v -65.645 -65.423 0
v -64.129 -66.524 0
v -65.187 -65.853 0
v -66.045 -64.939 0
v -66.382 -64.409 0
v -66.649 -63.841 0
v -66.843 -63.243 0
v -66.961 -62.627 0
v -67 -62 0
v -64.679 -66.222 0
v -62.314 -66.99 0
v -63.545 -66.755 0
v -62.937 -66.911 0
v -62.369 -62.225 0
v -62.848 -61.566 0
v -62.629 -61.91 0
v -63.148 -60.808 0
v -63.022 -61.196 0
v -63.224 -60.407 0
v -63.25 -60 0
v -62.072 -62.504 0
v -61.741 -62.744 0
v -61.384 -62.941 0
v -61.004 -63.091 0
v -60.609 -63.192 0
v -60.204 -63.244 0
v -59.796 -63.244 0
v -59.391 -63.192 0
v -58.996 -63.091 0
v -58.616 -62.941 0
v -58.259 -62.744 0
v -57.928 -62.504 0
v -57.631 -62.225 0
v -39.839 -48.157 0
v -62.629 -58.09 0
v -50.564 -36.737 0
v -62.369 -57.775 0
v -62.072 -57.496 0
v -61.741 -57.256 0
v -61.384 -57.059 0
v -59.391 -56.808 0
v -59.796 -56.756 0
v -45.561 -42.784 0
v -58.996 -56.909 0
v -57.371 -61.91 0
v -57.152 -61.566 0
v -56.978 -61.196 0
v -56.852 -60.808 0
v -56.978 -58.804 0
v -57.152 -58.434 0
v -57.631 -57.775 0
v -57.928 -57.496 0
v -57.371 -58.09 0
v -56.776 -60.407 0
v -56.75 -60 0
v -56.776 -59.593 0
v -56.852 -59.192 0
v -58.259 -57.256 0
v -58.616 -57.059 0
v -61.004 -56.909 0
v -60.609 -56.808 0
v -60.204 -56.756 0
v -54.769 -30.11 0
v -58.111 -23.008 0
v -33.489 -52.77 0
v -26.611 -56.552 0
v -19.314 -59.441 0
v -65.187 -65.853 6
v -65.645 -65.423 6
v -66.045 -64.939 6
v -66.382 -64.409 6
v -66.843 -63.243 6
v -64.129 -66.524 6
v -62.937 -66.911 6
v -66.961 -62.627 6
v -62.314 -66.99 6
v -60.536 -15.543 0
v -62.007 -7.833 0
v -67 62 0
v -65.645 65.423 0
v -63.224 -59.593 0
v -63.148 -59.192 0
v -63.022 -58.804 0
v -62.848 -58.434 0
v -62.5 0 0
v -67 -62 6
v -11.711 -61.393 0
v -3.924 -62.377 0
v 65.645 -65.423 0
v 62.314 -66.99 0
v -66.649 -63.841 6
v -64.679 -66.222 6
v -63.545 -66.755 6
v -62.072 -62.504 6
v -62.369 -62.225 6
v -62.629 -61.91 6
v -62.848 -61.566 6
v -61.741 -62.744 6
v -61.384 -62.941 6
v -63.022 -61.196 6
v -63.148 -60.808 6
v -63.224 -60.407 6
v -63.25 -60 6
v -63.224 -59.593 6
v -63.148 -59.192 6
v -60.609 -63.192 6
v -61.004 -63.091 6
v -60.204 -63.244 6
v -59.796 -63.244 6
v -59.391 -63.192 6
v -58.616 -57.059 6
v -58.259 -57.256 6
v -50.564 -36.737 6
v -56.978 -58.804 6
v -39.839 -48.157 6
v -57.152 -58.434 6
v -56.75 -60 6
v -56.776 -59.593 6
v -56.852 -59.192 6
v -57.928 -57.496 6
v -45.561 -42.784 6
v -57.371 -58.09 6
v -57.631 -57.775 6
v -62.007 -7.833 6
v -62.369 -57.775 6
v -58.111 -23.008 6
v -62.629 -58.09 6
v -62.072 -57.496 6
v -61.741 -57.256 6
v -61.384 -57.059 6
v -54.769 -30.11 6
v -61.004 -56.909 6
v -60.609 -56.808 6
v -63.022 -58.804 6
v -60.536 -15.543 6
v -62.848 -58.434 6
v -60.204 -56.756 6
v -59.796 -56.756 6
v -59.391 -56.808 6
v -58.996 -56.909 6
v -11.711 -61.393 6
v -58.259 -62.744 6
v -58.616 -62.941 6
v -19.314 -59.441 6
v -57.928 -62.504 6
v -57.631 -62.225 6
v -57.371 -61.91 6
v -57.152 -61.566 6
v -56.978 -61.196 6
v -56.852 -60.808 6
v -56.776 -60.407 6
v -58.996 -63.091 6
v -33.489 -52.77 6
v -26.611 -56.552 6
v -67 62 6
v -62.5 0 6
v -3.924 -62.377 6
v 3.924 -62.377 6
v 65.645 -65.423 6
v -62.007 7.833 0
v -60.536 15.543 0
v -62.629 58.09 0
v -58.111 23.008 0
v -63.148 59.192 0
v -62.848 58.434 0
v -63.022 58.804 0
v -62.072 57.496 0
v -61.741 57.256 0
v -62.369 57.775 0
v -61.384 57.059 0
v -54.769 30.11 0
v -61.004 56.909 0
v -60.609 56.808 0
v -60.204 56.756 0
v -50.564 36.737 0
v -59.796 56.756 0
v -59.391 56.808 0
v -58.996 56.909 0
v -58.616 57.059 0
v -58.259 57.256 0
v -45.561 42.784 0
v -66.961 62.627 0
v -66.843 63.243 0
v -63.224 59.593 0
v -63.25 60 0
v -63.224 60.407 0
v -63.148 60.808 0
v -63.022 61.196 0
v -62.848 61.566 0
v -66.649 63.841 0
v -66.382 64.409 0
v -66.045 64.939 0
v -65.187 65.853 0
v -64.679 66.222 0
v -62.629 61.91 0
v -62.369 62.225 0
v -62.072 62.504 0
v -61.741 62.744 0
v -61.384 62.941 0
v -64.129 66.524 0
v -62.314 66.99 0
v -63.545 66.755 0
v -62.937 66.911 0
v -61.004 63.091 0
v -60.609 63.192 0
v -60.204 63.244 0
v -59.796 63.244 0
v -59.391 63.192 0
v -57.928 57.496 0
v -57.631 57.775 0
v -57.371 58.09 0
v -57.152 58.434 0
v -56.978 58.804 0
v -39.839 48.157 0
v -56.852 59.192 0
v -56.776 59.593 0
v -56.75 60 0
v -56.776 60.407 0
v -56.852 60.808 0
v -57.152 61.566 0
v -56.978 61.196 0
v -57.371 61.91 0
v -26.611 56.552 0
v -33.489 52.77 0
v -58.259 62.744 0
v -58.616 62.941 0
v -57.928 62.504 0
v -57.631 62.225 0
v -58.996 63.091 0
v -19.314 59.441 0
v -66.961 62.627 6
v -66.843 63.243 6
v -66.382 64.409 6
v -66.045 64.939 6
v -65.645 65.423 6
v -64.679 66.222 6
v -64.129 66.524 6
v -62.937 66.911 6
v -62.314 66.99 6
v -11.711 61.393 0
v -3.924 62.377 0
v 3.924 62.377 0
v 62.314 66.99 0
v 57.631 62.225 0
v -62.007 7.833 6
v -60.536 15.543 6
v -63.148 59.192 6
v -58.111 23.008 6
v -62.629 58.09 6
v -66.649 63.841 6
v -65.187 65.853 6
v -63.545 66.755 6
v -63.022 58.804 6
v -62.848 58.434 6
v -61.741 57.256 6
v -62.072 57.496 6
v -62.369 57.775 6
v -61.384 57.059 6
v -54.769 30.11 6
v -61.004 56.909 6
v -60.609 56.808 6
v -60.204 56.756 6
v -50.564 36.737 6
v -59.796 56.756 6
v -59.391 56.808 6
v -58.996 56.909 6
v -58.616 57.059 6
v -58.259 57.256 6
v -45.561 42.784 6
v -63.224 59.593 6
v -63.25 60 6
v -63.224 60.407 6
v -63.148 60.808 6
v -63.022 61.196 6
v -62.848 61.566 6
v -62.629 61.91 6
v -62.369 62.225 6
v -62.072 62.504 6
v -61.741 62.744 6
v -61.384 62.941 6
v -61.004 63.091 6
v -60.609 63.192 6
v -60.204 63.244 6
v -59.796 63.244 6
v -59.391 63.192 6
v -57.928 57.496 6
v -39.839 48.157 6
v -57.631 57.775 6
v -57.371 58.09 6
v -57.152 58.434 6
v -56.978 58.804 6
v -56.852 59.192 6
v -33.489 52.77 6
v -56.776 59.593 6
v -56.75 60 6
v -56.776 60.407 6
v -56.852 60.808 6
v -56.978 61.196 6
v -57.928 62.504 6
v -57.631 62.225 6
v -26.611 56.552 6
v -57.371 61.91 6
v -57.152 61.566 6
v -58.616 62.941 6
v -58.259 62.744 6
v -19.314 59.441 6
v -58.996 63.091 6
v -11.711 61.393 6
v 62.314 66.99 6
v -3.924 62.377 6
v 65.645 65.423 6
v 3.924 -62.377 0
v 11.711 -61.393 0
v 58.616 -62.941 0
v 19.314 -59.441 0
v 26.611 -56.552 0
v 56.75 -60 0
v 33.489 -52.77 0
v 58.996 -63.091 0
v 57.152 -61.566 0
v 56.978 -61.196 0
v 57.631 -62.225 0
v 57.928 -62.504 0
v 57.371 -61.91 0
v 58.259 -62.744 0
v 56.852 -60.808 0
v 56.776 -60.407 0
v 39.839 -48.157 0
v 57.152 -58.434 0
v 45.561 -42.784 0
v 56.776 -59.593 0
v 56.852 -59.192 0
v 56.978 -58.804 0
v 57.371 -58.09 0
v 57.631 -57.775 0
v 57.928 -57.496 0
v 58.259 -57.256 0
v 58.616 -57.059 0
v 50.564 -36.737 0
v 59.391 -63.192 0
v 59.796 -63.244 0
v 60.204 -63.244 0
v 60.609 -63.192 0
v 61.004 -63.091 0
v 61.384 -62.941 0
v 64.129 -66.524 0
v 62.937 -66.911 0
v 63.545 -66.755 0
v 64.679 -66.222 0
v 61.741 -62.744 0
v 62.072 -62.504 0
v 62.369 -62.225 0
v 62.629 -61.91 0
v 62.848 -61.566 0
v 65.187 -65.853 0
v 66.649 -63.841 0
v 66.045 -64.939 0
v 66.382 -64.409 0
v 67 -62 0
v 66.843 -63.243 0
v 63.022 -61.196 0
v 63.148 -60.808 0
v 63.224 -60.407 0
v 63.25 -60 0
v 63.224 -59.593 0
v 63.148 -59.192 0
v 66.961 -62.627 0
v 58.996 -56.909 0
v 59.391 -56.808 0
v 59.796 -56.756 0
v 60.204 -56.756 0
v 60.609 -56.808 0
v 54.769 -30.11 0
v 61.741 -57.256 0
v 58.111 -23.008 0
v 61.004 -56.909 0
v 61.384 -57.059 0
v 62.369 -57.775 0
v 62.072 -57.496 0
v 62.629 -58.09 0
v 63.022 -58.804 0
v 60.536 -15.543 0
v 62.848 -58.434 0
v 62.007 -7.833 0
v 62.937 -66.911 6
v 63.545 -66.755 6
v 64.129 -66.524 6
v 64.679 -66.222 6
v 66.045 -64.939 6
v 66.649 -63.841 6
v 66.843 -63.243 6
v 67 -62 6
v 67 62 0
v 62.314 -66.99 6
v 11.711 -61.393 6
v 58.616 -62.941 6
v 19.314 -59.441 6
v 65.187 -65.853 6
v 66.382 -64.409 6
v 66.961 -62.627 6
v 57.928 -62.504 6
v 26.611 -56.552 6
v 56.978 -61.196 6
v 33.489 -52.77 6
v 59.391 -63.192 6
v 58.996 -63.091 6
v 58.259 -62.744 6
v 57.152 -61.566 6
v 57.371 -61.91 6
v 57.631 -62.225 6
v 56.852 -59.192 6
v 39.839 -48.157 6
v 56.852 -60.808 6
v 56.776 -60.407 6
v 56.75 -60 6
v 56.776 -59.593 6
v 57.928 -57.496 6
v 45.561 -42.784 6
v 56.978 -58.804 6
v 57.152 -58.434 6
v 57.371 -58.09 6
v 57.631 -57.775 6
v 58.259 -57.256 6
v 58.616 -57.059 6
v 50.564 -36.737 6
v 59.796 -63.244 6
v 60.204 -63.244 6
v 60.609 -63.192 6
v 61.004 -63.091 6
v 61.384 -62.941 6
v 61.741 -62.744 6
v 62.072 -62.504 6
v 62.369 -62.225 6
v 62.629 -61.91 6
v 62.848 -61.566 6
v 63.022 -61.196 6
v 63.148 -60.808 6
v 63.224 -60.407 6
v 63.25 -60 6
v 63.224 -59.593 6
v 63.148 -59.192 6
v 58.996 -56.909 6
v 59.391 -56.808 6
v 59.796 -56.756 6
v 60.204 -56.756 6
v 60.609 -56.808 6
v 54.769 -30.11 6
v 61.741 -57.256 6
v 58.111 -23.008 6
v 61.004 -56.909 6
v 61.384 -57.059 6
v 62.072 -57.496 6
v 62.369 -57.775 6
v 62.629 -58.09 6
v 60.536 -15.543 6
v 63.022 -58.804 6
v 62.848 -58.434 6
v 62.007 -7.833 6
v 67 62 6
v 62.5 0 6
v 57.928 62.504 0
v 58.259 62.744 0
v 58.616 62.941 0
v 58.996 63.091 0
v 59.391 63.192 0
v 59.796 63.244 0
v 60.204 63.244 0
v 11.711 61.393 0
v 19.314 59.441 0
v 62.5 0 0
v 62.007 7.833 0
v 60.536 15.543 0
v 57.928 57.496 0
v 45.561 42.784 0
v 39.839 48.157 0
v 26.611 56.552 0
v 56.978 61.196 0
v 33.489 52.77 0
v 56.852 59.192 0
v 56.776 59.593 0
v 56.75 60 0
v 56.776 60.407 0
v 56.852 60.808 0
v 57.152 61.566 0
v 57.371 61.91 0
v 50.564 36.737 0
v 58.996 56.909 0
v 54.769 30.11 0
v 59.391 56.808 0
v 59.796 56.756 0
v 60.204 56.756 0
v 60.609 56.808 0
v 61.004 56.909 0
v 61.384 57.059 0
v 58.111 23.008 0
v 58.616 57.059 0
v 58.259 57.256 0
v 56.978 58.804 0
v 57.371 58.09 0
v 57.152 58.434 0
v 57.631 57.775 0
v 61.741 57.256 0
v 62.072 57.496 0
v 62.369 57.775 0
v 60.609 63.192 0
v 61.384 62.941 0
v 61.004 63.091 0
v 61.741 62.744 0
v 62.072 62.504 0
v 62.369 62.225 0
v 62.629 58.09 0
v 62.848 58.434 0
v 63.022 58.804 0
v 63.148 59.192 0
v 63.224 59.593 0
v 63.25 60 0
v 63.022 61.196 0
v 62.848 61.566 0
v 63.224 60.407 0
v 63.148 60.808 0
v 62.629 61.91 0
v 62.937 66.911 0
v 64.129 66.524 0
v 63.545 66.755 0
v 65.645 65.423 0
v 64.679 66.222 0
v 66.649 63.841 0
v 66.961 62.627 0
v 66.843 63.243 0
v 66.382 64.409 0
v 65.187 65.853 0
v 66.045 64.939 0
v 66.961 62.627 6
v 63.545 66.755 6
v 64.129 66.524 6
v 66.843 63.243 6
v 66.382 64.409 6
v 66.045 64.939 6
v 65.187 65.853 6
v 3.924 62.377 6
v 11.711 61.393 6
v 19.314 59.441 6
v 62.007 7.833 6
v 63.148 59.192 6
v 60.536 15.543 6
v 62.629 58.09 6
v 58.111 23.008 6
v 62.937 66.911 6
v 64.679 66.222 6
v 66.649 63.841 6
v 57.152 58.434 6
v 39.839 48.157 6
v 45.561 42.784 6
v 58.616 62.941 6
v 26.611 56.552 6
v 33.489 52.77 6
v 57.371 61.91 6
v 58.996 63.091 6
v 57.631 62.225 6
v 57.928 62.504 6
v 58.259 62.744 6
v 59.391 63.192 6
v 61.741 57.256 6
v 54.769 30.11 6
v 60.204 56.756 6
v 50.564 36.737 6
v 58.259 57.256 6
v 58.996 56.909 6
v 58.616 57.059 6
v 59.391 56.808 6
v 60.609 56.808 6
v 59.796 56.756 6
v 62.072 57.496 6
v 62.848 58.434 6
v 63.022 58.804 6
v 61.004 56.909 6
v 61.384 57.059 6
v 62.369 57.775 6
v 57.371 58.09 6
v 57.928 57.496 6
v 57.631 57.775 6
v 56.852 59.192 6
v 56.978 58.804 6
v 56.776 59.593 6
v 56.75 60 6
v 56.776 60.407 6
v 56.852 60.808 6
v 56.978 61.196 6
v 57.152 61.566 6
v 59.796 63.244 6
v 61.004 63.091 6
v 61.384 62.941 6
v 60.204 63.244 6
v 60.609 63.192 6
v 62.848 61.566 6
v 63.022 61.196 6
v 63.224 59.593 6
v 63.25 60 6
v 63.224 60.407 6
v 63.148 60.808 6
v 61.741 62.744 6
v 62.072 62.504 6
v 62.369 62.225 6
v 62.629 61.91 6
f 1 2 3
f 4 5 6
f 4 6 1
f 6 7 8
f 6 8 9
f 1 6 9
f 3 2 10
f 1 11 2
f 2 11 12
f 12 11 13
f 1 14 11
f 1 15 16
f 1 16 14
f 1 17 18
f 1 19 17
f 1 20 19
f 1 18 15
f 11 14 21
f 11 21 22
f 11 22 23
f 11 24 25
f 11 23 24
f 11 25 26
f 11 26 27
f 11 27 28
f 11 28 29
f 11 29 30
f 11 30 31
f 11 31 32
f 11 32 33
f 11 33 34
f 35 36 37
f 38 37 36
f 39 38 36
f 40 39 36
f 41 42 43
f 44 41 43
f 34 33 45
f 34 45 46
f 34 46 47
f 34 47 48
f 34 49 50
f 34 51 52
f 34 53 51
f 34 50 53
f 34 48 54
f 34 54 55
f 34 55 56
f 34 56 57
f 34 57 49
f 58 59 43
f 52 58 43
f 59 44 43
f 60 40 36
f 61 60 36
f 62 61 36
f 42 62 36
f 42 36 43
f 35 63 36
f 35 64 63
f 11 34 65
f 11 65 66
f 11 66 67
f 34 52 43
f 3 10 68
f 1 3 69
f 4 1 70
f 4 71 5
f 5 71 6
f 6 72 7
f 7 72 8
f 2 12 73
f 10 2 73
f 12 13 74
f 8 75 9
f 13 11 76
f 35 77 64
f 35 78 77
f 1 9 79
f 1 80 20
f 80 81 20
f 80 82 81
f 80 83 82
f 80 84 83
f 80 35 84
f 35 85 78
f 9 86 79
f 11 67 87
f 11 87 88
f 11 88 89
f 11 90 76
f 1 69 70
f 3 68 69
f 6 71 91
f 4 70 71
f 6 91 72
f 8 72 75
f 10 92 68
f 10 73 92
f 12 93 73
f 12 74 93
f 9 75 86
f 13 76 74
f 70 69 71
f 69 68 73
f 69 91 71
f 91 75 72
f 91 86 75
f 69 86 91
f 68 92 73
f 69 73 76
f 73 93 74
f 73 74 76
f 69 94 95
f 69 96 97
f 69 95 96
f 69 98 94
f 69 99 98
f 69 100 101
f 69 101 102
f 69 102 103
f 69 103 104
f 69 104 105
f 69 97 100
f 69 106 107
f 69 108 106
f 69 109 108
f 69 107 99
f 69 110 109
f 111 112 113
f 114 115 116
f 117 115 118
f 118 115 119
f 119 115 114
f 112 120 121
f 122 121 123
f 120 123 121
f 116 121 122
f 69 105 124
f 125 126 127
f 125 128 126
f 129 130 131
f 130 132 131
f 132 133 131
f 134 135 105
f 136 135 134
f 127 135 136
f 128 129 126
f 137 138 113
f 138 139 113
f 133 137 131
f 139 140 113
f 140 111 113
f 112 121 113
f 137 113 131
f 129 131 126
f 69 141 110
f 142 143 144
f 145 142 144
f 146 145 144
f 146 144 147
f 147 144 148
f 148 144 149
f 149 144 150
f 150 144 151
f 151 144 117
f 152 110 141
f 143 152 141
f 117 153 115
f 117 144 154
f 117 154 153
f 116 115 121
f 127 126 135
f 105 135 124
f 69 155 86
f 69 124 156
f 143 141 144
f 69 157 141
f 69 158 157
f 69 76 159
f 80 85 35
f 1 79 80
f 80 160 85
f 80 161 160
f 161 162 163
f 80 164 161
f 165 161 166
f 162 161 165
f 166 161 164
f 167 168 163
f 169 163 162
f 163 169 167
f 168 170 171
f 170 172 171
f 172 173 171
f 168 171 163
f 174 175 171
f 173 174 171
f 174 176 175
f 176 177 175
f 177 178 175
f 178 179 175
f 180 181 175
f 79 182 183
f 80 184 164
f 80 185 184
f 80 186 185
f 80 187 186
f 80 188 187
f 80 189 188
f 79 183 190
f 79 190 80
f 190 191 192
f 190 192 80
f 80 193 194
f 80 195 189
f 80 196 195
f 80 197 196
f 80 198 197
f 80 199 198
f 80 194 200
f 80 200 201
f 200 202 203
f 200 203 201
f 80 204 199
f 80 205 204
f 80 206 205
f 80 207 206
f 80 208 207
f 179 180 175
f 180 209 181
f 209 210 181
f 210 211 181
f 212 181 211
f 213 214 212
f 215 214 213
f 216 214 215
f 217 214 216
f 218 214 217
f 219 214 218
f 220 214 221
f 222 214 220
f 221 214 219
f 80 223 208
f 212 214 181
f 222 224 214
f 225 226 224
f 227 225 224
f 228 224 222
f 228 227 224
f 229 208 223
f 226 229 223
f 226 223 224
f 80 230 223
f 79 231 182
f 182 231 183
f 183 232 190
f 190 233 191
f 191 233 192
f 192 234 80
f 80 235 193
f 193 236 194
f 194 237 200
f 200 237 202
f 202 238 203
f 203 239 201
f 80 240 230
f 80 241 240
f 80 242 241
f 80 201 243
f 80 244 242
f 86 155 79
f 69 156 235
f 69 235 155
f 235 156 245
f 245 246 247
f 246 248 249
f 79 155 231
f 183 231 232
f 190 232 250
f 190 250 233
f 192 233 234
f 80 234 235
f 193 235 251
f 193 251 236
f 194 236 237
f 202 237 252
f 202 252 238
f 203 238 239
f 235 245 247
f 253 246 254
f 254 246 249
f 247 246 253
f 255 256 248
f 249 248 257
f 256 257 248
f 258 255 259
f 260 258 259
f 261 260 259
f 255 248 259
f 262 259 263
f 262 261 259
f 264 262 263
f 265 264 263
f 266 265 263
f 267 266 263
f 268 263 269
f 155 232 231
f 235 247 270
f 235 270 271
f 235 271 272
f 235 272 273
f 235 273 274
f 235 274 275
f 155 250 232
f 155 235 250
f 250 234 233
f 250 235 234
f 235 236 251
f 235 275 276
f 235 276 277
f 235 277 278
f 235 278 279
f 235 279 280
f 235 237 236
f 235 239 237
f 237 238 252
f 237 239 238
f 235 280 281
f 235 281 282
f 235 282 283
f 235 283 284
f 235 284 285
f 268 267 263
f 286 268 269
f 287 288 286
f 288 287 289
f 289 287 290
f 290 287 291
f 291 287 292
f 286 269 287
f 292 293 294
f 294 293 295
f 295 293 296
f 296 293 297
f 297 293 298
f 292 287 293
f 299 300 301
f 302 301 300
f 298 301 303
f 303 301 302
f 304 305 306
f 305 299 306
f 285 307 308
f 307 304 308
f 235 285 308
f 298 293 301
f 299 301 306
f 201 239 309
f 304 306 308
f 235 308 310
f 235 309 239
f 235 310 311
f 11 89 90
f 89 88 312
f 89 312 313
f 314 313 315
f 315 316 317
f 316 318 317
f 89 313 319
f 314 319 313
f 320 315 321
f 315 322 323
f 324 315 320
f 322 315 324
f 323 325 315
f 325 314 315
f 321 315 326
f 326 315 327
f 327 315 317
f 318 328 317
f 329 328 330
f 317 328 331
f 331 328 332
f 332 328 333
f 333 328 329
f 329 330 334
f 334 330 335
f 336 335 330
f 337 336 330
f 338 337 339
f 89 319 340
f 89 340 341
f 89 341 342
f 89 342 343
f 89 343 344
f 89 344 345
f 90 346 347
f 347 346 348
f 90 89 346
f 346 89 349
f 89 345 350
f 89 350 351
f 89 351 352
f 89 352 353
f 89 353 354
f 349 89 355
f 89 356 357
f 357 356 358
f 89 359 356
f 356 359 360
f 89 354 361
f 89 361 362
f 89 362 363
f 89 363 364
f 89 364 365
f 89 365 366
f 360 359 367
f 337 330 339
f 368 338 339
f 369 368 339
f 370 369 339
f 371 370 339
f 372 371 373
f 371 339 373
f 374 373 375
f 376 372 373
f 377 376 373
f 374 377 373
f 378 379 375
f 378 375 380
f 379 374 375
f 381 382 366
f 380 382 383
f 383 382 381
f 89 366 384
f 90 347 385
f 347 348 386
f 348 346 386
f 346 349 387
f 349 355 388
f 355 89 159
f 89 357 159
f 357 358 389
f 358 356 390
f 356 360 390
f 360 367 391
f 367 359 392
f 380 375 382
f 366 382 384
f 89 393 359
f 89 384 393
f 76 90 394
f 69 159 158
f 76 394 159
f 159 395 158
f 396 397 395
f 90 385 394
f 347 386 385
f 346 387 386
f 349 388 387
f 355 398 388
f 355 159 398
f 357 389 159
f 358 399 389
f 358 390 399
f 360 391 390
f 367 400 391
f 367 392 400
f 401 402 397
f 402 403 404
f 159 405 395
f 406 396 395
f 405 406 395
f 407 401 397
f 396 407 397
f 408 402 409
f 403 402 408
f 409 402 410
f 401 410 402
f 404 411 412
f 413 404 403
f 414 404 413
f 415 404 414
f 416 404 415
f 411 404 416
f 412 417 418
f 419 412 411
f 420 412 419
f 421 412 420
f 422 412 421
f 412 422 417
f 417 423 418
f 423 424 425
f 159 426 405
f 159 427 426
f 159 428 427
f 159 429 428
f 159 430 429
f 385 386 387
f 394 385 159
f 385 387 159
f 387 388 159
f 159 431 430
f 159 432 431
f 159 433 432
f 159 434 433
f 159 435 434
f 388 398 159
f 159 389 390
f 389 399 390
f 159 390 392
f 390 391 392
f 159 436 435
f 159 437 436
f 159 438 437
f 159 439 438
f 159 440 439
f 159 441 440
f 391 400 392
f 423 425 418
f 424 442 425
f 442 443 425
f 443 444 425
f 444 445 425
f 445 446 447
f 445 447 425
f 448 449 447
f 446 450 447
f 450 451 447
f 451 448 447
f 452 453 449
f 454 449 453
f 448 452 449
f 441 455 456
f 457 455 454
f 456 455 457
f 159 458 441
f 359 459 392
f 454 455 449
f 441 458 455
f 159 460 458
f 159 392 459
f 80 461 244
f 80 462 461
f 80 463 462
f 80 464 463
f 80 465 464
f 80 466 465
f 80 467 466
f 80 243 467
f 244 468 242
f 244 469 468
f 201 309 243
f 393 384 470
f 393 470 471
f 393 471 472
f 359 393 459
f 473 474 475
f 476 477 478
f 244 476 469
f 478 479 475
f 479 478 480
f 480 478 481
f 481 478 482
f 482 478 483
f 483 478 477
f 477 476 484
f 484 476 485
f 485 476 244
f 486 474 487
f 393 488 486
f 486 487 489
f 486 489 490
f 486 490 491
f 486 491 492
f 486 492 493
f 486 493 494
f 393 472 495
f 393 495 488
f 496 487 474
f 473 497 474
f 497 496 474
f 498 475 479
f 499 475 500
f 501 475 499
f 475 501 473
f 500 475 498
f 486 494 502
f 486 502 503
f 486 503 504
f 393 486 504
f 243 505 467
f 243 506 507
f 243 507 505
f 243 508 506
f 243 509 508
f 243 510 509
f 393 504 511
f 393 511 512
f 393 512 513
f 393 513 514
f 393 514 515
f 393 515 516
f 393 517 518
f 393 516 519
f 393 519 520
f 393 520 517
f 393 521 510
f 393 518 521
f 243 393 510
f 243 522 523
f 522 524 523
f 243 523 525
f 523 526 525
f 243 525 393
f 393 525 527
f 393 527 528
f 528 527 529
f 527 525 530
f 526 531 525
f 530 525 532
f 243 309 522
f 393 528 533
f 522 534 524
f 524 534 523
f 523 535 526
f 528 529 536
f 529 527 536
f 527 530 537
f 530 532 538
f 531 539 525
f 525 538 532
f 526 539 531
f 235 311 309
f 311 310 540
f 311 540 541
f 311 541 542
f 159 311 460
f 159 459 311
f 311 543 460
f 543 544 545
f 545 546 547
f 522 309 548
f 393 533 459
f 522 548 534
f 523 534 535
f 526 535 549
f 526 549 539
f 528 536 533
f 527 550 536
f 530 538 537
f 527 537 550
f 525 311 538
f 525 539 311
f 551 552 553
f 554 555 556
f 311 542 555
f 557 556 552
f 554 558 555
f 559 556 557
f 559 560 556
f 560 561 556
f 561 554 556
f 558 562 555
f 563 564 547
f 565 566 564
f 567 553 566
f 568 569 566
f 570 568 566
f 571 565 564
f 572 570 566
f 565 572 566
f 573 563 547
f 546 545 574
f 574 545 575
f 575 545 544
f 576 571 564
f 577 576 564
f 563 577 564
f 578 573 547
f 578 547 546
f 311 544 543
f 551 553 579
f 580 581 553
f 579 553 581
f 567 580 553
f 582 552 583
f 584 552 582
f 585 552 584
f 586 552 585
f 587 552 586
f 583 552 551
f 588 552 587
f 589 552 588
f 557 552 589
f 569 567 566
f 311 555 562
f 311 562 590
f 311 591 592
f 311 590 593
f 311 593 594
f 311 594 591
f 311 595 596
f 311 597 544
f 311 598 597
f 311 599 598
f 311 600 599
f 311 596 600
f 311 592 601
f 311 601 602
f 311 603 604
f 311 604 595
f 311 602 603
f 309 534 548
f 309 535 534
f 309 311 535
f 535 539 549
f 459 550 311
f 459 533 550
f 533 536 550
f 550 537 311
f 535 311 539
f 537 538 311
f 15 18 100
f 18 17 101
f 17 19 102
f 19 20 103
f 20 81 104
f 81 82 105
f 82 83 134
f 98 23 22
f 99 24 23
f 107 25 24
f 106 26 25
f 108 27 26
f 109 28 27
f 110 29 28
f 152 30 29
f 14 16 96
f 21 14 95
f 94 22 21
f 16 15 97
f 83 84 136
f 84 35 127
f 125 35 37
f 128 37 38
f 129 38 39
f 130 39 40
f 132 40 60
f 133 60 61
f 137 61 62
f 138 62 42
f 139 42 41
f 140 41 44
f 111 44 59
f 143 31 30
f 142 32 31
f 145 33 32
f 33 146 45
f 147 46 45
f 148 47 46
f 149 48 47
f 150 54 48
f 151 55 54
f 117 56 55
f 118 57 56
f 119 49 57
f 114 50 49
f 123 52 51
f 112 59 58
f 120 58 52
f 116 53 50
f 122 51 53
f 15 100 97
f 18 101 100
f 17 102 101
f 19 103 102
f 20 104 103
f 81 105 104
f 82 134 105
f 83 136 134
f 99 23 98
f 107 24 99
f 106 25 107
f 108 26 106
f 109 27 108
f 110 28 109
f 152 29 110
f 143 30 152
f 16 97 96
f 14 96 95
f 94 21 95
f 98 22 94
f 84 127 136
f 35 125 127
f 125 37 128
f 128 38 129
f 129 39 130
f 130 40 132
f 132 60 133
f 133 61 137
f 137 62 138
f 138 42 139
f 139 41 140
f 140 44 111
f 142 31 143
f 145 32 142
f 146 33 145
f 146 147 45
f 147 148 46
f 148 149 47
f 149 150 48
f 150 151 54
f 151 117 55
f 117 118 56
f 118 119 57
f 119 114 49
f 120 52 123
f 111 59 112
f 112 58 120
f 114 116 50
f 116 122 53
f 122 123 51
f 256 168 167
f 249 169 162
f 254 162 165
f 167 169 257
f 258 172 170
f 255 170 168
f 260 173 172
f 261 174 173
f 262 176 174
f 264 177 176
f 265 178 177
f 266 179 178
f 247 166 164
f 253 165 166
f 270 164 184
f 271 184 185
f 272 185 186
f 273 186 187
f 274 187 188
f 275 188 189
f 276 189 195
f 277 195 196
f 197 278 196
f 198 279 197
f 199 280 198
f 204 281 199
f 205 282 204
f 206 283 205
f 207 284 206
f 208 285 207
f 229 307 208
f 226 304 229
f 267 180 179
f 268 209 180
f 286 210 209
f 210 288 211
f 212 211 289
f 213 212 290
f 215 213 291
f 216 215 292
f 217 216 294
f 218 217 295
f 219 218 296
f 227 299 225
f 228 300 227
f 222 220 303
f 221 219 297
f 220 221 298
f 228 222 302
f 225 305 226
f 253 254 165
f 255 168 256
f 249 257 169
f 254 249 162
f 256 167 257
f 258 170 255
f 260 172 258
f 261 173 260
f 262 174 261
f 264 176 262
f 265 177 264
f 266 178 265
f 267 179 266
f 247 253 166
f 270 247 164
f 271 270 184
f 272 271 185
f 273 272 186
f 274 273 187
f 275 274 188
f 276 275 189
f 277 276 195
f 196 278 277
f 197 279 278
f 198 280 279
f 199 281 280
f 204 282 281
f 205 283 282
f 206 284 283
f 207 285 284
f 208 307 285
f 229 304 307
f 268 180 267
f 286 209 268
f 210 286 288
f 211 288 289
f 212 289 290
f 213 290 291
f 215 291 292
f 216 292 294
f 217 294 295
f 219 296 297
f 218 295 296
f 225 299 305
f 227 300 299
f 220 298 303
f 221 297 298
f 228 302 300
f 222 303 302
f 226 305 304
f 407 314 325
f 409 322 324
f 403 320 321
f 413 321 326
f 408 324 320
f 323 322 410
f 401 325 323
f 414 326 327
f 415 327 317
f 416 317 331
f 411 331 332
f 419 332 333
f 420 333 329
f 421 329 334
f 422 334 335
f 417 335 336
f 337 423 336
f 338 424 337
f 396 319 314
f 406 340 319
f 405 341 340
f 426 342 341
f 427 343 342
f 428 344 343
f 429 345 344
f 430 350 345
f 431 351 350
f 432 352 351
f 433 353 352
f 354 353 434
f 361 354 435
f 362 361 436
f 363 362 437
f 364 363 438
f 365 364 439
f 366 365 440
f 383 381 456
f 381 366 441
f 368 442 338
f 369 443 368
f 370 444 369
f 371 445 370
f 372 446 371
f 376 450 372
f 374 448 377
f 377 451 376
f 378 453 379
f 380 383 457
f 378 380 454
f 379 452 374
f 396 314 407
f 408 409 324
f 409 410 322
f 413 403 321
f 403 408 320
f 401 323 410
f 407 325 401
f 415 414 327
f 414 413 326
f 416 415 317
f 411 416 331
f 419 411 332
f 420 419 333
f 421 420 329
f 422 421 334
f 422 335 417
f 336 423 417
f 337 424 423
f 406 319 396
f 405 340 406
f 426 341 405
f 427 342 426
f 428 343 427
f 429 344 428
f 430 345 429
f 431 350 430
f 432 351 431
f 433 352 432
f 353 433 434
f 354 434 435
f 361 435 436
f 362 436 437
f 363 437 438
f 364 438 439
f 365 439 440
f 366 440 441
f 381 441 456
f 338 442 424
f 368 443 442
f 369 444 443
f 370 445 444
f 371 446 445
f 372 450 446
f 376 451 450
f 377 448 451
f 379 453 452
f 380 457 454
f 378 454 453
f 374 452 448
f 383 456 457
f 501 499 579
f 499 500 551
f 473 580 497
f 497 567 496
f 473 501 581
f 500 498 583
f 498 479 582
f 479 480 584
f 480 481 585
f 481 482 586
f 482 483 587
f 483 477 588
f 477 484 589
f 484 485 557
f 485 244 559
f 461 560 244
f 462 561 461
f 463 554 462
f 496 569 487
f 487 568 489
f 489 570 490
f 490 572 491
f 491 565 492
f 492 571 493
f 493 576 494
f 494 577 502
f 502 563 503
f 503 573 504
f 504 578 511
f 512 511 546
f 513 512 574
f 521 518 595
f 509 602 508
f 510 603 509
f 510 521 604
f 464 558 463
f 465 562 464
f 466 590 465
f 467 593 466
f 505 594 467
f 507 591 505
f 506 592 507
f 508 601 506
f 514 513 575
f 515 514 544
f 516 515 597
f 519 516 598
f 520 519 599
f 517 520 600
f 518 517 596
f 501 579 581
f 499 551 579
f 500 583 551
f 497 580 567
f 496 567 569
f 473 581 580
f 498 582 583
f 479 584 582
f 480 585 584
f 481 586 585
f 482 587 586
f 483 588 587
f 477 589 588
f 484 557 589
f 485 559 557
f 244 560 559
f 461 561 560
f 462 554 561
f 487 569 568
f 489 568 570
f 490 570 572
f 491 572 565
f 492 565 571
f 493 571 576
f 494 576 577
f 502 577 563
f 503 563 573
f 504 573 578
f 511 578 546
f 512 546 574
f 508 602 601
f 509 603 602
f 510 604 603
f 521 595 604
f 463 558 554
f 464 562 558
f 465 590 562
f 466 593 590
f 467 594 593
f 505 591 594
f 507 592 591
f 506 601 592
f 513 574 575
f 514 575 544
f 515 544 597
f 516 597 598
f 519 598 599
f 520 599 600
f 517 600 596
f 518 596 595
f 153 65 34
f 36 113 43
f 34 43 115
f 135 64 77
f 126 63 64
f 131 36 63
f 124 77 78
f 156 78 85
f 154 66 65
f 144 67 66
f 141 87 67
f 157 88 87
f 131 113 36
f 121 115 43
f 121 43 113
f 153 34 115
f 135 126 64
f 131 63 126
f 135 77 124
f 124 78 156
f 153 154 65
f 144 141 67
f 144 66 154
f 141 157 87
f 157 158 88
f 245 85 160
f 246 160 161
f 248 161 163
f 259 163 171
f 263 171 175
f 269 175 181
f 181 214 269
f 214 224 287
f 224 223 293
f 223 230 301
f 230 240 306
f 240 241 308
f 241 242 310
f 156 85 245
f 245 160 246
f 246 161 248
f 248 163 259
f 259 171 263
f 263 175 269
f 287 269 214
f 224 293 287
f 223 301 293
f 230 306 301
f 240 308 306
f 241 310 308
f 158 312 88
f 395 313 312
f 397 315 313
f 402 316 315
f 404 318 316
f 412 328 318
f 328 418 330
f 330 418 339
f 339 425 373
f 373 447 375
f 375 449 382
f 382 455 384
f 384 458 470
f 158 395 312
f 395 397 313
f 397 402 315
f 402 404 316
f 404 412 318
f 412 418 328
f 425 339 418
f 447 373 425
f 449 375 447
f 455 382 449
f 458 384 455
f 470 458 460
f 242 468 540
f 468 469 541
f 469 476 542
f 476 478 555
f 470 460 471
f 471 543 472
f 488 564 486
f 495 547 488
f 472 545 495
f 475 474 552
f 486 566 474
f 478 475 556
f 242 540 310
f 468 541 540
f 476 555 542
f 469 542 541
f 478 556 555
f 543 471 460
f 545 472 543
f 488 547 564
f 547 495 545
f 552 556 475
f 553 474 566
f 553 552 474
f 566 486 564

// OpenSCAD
$fn = 50;

difference() {
	union() {
		hull() {
			translate(v = [-62.0, 62.0, 0]) {
				cylinder(h = 6, r = 5);
			}
			translate(v = [62.0, 62.0, 0]) {
				cylinder(h = 6, r = 5);
			}
			translate(v = [-62.0, -62.0, 0]) {
				cylinder(h = 6, r = 5);
			}
			translate(v = [62.0, -62.0, 0]) {
				cylinder(h = 6, r = 5);
			}
		}
	}
	union() {
		translate(v = [-60.0, -60.0, -100.0]) {
			cylinder(h = 200, r = 3.25);
		}
		translate(v = [-60.0, 60.0, -100.0]) {
			cylinder(h = 200, r = 3.25);
		}
		translate(v = [60.0, -60.0, -100.0]) {
			cylinder(h = 200, r = 3.25);
		}
		translate(v = [60.0, 60.0, -100.0]) {
			cylinder(h = 200, r = 3.25);
		}
		translate(v = [-60.0, -60.0, -100.0]) {
			cylinder(h = 200, r = 1.8);
		}
		translate(v = [-60.0, 60.0, -100.0]) {
			cylinder(h = 200, r = 1.8);
		}
		translate(v = [60.0, -60.0, -100.0]) {
			cylinder(h = 200, r = 1.8);
		}
		translate(v = [60.0, 60.0, -100.0]) {
			cylinder(h = 200, r = 1.8);
		}
		cylinder(h = 6, r = 62.5);
	}
}
